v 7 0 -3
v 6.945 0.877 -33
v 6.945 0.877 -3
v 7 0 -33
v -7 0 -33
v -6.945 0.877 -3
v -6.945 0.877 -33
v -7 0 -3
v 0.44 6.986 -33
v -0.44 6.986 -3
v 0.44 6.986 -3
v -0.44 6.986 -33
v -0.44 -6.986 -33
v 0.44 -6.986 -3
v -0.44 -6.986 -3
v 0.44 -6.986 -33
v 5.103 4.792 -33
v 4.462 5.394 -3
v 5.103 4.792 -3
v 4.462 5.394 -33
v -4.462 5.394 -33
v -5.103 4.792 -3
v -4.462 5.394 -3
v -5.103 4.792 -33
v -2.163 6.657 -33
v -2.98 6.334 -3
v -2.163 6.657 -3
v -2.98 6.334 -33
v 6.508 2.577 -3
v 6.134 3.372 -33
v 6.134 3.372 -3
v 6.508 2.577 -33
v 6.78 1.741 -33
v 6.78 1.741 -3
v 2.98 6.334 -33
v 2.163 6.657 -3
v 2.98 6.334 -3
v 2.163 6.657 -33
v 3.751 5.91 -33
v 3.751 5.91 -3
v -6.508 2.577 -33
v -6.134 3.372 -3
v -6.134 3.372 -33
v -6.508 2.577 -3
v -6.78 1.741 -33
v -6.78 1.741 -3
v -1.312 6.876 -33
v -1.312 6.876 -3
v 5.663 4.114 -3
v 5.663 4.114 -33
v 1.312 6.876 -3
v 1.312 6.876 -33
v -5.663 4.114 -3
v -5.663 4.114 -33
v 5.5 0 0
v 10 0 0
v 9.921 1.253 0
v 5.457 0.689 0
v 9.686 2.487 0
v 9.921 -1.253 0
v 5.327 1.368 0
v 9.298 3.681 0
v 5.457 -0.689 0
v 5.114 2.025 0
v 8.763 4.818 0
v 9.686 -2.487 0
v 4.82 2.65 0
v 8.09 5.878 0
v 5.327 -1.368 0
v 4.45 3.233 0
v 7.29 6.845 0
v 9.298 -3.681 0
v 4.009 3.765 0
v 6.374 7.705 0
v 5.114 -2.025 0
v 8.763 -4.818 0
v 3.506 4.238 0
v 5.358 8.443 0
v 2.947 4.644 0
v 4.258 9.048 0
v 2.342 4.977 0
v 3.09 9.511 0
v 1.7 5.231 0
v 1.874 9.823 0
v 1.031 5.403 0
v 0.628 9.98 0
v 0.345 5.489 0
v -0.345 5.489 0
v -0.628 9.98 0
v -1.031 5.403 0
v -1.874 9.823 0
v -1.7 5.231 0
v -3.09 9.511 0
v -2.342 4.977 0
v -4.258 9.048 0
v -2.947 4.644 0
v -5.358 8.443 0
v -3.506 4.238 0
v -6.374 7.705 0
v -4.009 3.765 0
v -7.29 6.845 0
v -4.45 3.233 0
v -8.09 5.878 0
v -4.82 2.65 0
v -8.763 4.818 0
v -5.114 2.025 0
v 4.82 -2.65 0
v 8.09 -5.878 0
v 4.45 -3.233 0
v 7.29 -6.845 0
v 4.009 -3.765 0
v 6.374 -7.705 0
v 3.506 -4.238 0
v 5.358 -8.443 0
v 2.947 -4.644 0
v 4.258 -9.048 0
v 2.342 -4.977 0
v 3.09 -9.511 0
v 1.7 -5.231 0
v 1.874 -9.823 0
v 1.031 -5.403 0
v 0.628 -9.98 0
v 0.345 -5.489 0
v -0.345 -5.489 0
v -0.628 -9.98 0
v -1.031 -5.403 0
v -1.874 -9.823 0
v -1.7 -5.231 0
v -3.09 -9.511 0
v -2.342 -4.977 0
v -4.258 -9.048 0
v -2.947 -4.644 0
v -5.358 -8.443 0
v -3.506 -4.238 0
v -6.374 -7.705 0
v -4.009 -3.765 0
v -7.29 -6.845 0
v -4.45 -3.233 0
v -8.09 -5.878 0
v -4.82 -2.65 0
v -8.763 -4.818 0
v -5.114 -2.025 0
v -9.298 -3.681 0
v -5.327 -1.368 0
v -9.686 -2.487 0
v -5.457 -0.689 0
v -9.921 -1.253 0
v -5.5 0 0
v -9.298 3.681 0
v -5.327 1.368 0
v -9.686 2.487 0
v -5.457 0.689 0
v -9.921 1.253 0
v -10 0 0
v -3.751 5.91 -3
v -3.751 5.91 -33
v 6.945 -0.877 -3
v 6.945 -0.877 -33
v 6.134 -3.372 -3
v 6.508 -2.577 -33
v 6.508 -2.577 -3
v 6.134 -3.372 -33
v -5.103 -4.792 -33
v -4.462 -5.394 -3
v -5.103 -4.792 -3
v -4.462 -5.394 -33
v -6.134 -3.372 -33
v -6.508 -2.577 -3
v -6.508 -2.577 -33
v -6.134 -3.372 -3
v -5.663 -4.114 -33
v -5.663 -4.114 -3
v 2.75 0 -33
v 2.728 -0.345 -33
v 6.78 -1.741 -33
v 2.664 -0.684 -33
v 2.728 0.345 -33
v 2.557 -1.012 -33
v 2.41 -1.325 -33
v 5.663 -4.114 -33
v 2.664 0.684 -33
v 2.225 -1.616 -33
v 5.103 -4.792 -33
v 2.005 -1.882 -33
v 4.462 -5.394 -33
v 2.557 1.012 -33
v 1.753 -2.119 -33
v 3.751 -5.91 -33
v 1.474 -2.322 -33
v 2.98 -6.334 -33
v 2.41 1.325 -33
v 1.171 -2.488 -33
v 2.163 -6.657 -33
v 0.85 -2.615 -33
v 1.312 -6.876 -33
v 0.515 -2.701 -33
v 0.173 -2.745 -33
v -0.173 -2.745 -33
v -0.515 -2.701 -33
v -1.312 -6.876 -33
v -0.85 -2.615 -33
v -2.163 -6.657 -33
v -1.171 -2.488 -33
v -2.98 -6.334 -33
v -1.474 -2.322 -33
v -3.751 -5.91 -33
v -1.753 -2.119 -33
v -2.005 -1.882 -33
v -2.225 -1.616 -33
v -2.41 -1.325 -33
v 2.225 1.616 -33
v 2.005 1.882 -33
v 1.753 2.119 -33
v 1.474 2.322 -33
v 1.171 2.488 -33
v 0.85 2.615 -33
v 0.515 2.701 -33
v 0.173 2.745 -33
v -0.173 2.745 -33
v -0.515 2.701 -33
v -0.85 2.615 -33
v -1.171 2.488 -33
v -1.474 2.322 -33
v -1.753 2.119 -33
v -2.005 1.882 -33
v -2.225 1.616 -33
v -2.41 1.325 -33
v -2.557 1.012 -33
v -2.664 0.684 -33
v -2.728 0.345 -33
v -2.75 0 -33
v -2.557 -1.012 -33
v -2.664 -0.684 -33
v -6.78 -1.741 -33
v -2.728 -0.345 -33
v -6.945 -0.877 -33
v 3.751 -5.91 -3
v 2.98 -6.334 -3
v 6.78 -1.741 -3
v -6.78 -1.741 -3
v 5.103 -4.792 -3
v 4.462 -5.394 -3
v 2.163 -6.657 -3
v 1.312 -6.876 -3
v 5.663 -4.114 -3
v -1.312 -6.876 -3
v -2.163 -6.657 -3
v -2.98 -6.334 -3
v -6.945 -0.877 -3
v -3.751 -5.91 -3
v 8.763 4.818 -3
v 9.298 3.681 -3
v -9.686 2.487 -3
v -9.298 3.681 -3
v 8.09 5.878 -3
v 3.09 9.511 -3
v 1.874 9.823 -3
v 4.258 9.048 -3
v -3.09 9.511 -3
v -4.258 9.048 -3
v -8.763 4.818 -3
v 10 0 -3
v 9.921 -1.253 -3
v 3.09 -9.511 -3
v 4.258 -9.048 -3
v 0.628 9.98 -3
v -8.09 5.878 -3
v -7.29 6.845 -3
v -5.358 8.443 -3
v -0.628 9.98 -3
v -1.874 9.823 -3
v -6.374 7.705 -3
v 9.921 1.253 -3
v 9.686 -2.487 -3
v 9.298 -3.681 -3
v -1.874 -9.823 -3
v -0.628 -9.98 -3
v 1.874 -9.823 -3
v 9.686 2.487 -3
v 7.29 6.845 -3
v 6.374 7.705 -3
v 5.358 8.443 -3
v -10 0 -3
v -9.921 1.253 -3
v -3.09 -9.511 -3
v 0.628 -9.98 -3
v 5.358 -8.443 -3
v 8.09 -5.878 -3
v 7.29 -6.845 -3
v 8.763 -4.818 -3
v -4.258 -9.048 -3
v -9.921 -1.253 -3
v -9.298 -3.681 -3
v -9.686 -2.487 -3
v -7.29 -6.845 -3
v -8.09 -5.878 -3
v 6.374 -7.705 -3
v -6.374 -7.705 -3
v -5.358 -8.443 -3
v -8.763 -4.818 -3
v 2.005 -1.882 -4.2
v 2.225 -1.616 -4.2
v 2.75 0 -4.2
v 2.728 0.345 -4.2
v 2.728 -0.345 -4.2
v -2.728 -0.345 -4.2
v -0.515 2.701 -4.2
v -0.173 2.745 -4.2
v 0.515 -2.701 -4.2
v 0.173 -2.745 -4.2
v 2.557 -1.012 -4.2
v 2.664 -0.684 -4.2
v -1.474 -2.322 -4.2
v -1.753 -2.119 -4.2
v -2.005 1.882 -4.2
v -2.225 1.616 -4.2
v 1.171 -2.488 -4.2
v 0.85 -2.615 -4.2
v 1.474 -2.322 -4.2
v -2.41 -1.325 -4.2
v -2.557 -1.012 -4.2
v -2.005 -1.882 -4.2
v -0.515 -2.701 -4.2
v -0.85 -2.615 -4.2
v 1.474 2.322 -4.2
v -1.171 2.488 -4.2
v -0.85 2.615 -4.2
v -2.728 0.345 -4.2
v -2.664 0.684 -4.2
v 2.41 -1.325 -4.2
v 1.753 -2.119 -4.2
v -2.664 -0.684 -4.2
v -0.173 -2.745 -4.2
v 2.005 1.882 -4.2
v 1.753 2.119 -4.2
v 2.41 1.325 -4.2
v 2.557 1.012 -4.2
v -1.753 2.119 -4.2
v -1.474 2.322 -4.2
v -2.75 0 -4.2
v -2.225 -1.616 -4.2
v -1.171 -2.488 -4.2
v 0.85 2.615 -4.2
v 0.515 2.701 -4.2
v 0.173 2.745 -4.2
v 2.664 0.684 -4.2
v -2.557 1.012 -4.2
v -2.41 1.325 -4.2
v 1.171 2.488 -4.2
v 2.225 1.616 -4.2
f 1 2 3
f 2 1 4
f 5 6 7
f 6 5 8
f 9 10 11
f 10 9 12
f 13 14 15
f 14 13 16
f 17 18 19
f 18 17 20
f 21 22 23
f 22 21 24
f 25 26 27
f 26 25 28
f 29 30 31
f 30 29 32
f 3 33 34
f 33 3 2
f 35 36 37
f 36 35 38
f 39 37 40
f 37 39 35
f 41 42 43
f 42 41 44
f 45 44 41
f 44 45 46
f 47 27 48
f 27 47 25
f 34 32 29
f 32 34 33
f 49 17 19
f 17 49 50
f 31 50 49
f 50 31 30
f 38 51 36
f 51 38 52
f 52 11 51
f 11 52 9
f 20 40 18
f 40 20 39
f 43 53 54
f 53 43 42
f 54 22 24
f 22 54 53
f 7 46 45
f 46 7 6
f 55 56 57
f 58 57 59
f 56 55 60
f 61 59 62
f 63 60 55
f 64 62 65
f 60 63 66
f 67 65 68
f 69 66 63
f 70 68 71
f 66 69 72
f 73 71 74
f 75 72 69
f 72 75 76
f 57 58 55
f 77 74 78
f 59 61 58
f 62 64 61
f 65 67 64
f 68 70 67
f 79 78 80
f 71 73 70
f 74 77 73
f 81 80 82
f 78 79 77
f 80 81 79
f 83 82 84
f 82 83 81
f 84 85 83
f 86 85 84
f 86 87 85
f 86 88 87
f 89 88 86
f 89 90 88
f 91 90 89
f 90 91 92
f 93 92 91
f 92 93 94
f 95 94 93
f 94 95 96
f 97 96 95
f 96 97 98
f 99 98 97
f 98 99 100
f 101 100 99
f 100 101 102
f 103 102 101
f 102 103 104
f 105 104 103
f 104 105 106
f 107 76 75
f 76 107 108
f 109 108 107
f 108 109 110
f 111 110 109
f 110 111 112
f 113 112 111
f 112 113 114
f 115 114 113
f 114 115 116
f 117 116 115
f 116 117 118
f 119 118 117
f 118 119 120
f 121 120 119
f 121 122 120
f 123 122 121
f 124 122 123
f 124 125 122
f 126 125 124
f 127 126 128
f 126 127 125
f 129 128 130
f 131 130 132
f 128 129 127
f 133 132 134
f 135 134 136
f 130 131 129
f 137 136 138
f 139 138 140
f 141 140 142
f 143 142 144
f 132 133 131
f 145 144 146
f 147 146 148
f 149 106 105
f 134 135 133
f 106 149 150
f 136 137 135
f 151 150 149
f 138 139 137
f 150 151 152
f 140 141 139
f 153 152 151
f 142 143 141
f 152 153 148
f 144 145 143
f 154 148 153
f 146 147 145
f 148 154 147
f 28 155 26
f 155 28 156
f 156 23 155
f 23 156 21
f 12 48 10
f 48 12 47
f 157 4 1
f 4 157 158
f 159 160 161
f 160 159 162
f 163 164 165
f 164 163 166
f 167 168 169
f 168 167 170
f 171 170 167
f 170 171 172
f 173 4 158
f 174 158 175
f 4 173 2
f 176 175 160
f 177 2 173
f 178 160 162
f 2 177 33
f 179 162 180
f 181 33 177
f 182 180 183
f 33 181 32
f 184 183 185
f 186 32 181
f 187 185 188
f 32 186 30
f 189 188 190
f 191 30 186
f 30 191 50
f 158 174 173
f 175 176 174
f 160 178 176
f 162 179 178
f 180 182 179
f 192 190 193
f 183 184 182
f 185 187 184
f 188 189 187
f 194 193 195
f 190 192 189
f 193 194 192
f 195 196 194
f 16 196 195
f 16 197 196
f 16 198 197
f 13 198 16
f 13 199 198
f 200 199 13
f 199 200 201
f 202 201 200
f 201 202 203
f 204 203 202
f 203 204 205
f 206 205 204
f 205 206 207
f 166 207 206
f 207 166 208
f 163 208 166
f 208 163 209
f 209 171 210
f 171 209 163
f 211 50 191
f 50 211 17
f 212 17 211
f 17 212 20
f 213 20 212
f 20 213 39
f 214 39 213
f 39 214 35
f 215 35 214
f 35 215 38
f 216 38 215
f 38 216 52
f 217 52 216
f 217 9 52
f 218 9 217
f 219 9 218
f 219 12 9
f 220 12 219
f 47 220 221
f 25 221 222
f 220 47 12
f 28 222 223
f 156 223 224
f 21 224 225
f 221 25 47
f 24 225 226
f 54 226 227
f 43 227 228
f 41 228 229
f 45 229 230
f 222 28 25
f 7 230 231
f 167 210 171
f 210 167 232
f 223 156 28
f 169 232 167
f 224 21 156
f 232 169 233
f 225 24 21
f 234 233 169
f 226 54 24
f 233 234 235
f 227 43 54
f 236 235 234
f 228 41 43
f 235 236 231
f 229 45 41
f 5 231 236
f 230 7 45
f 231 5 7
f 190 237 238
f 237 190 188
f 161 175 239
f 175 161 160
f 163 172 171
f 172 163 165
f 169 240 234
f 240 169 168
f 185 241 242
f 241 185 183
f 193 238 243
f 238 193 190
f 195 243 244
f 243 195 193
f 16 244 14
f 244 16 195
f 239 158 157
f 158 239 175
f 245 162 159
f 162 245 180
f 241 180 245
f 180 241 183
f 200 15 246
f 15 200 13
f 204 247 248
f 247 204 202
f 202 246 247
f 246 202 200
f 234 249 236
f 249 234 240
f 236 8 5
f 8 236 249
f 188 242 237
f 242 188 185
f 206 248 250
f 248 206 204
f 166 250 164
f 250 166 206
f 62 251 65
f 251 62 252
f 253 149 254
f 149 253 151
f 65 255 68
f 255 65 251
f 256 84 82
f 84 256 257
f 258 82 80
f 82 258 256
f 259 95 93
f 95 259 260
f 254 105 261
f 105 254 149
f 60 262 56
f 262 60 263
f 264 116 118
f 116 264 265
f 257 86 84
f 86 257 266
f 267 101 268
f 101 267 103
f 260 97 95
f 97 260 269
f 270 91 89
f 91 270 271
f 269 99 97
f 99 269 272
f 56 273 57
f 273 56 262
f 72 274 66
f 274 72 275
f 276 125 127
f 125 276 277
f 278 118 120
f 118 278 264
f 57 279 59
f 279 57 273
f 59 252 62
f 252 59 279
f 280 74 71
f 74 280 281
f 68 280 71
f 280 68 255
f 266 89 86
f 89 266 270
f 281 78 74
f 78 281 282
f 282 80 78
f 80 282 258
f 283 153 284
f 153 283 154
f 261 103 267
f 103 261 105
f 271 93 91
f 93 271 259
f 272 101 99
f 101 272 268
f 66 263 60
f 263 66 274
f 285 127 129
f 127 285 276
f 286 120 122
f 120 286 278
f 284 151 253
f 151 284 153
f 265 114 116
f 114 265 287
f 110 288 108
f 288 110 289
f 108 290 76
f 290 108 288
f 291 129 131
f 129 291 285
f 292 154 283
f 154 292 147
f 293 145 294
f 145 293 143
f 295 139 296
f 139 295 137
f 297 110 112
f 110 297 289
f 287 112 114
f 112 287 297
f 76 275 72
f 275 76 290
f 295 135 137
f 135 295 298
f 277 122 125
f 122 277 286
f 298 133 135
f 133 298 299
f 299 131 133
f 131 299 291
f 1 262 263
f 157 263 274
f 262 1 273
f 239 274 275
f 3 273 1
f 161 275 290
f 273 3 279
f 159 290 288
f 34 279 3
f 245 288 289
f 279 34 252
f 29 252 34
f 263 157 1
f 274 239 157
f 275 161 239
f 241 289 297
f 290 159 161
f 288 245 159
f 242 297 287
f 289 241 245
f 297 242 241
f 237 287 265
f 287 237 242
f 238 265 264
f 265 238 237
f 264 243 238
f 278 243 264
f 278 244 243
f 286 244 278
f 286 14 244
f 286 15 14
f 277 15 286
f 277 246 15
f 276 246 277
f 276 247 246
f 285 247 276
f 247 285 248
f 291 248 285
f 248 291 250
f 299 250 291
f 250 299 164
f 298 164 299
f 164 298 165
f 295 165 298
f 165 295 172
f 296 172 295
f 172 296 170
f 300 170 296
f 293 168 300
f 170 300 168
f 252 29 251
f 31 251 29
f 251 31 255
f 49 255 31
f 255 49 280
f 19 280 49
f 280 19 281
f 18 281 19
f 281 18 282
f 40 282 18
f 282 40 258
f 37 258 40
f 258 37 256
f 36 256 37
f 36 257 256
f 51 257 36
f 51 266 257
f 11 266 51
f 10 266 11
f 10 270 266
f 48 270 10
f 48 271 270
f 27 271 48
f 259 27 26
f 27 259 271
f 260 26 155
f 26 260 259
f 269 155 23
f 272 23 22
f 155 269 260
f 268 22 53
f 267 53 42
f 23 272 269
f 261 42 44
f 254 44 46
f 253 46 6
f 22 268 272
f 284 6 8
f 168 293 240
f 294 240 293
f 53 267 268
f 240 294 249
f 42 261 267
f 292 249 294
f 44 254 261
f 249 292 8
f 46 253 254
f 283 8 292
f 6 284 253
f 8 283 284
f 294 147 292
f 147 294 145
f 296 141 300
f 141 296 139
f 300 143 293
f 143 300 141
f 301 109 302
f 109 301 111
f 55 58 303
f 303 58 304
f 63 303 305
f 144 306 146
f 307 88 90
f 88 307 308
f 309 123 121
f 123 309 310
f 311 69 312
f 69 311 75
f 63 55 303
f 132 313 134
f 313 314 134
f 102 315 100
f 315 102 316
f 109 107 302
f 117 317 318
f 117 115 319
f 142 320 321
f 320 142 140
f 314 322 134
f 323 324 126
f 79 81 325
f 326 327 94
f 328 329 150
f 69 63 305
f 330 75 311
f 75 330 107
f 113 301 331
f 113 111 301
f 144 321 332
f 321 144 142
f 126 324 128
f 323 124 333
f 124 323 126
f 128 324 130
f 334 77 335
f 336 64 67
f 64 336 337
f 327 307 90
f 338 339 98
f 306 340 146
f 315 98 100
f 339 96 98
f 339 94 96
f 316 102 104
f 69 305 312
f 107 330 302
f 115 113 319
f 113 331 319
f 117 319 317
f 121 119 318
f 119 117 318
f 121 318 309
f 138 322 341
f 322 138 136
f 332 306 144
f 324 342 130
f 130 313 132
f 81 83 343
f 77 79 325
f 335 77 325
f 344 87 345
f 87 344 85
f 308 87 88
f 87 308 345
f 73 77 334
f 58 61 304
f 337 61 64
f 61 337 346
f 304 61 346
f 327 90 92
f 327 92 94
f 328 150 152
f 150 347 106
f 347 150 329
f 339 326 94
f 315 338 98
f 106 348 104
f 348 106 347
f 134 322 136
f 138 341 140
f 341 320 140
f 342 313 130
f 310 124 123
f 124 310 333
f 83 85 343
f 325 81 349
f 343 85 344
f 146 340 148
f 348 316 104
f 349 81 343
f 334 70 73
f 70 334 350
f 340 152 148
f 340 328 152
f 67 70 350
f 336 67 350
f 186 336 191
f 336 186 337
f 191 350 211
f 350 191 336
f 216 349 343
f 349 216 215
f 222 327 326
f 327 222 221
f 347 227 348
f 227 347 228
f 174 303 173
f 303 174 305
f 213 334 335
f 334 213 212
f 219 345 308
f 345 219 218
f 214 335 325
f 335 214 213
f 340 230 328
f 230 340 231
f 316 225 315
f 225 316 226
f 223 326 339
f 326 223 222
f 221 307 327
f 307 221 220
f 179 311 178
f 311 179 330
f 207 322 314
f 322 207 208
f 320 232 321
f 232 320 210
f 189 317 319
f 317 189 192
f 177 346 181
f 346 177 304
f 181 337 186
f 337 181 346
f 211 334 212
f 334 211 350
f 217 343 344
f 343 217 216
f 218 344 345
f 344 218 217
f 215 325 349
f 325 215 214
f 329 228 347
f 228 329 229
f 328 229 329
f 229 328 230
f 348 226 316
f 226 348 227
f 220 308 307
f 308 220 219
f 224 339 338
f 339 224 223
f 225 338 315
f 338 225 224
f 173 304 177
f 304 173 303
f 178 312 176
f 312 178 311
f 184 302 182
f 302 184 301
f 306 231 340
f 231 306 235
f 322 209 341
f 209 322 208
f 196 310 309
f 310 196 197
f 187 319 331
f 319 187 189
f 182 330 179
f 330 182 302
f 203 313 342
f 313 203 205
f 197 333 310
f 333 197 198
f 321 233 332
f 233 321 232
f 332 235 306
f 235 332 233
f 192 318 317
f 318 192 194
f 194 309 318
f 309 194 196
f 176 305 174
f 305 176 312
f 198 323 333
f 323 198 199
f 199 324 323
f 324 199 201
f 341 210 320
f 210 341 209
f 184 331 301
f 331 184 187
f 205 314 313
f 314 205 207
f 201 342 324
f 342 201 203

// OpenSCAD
$fn = 50;


difference() {
	union() {
		translate(v = [0, 0, -33.0000000000]) {
			cylinder(h = 33, r = 7.0000000000);
		}
		translate(v = [0, 0, -3.0000000000]) {
			cylinder(h = 3, r = 10.0000000000);
		}
	}
	union() {
		translate(v = [0, 0, 0]) {
			rotate(a = [0, 0, 0]) {
				difference() {
					union() {
						#translate(v = [0, 0, -33.0000000000]) {
							cylinder(h = 33, r = 2.2500000000);
						}
						#translate(v = [0, 0, -4.2000000000]) {
							cylinder(h = 4.2000000000, r1 = 2.7500000000, r2 = 5.5000000000);
						}
						#translate(v = [0, 0, -33.0000000000]) {
							cylinder(h = 33, r = 2.7500000000);
						}
						#translate(v = [0, 0, -33.0000000000]) {
							cylinder(h = 33, r = 2.2500000000);
						}
					}
					union();
				}
			}
		}
	}
}
